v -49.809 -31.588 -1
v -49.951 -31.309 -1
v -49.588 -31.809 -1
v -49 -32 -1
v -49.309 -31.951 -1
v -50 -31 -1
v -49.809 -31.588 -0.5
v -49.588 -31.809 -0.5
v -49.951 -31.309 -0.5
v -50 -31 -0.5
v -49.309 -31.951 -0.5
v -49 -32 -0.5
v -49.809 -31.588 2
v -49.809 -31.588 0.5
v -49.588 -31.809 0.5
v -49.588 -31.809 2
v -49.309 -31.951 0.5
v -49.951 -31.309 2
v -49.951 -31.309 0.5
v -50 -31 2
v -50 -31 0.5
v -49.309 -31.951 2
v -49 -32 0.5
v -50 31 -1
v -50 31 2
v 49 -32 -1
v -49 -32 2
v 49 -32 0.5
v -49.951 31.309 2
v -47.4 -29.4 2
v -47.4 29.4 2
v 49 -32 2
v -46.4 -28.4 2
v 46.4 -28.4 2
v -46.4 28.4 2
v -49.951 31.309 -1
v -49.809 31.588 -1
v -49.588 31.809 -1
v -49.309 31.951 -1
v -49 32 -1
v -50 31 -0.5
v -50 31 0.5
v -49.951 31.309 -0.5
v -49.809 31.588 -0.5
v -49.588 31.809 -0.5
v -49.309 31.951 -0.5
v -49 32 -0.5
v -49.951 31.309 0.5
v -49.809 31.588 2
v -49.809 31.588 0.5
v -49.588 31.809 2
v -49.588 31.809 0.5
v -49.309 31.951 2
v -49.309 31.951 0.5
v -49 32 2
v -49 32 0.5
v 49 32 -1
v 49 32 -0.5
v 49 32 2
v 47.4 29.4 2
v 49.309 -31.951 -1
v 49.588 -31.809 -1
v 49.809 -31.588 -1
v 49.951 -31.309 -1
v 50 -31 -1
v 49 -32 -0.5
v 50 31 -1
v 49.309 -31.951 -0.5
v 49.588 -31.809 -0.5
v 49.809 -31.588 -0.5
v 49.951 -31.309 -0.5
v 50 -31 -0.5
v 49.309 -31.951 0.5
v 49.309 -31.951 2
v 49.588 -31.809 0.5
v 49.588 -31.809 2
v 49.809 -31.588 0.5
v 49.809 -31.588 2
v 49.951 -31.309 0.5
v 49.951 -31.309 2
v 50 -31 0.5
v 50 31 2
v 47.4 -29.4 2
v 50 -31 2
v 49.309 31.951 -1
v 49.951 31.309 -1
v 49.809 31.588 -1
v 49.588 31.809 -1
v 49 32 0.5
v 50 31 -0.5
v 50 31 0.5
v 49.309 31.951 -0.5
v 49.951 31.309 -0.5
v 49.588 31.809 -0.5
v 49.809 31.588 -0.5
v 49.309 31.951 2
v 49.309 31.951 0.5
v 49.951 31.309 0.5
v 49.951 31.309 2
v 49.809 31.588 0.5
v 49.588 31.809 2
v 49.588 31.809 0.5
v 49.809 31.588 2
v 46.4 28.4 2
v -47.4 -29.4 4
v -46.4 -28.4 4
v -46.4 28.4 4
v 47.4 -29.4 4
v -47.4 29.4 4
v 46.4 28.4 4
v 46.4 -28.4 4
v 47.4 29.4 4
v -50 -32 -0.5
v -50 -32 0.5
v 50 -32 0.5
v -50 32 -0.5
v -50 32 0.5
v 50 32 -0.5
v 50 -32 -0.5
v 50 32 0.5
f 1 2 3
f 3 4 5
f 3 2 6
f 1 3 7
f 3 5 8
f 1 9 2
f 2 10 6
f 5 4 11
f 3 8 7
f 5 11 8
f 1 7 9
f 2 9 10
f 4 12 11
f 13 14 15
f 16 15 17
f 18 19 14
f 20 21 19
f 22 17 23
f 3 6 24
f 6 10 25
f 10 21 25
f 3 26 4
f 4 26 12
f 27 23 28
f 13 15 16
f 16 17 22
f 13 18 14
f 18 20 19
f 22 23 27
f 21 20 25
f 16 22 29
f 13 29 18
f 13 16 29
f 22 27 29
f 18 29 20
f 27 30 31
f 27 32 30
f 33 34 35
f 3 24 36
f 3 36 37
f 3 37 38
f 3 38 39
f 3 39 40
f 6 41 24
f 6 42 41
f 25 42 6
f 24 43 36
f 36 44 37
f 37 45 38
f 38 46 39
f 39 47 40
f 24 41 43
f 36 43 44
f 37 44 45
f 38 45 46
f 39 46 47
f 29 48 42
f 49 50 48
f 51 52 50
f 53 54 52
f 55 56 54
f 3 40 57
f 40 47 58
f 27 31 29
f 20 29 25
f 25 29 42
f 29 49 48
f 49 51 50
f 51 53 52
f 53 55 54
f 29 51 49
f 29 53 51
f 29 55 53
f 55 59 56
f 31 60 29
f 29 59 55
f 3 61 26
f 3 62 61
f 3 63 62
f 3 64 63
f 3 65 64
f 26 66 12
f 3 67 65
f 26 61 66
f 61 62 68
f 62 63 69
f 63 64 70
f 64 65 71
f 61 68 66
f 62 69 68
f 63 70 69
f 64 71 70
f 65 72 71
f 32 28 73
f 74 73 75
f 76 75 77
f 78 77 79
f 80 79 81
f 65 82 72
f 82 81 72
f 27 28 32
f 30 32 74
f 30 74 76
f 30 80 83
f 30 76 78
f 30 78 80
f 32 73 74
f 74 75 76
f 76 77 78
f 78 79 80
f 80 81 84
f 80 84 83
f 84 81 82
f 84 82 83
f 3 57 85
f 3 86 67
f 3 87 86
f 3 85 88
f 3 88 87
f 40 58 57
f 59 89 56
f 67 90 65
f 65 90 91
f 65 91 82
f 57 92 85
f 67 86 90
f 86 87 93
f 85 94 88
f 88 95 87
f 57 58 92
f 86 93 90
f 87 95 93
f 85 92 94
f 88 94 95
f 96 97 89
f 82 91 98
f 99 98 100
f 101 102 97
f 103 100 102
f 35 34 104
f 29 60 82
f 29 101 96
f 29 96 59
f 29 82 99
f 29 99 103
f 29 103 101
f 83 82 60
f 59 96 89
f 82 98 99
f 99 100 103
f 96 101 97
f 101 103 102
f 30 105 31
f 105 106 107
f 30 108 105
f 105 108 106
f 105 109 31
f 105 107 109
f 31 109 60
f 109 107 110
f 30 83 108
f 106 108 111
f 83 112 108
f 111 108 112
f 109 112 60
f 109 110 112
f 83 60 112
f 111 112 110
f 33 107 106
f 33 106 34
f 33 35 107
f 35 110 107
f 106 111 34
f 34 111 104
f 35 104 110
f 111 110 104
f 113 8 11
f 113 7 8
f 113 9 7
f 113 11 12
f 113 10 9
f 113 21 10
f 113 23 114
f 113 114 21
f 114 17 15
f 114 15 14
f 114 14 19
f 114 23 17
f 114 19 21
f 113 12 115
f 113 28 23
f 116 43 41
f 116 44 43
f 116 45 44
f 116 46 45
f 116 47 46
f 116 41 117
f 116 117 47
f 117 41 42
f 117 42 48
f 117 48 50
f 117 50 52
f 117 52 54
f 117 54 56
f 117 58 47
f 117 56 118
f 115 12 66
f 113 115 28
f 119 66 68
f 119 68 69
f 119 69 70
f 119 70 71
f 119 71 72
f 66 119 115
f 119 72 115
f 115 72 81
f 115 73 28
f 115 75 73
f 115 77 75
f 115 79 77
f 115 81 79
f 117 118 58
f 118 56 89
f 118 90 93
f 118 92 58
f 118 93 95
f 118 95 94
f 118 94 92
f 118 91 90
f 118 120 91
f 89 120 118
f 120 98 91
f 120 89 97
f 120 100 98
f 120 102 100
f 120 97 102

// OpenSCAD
// file: constants.scad
// Constants
board_y_width = 51;
board_x_length = 87;
wall_thickness = 1.5;
// main file
// Lid for the box
$fn=20;

include <constants.scad>
lid_layer_thickness = 2;
lid_inset = 0.2;

// top part full width
minkowski() {
    cube([8+board_x_length+(wall_thickness*2), 8+board_y_width+(wall_thickness*2), lid_layer_thickness], center = true);
    cylinder(r=1,h=1);
    }
translate([0, 0, lid_layer_thickness])
difference() {
// bit that fits into the hole in the box
    cube([8+board_x_length - lid_inset, 8+board_y_width - lid_inset, lid_layer_thickness+2], center = true);
    translate([0, 0, 0.1])
    cube([8+board_x_length - lid_inset - lid_layer_thickness, 8+board_y_width - lid_inset - lid_layer_thickness, lid_layer_thickness+2], center = true);

}

cube([100,64,1],center=true);
